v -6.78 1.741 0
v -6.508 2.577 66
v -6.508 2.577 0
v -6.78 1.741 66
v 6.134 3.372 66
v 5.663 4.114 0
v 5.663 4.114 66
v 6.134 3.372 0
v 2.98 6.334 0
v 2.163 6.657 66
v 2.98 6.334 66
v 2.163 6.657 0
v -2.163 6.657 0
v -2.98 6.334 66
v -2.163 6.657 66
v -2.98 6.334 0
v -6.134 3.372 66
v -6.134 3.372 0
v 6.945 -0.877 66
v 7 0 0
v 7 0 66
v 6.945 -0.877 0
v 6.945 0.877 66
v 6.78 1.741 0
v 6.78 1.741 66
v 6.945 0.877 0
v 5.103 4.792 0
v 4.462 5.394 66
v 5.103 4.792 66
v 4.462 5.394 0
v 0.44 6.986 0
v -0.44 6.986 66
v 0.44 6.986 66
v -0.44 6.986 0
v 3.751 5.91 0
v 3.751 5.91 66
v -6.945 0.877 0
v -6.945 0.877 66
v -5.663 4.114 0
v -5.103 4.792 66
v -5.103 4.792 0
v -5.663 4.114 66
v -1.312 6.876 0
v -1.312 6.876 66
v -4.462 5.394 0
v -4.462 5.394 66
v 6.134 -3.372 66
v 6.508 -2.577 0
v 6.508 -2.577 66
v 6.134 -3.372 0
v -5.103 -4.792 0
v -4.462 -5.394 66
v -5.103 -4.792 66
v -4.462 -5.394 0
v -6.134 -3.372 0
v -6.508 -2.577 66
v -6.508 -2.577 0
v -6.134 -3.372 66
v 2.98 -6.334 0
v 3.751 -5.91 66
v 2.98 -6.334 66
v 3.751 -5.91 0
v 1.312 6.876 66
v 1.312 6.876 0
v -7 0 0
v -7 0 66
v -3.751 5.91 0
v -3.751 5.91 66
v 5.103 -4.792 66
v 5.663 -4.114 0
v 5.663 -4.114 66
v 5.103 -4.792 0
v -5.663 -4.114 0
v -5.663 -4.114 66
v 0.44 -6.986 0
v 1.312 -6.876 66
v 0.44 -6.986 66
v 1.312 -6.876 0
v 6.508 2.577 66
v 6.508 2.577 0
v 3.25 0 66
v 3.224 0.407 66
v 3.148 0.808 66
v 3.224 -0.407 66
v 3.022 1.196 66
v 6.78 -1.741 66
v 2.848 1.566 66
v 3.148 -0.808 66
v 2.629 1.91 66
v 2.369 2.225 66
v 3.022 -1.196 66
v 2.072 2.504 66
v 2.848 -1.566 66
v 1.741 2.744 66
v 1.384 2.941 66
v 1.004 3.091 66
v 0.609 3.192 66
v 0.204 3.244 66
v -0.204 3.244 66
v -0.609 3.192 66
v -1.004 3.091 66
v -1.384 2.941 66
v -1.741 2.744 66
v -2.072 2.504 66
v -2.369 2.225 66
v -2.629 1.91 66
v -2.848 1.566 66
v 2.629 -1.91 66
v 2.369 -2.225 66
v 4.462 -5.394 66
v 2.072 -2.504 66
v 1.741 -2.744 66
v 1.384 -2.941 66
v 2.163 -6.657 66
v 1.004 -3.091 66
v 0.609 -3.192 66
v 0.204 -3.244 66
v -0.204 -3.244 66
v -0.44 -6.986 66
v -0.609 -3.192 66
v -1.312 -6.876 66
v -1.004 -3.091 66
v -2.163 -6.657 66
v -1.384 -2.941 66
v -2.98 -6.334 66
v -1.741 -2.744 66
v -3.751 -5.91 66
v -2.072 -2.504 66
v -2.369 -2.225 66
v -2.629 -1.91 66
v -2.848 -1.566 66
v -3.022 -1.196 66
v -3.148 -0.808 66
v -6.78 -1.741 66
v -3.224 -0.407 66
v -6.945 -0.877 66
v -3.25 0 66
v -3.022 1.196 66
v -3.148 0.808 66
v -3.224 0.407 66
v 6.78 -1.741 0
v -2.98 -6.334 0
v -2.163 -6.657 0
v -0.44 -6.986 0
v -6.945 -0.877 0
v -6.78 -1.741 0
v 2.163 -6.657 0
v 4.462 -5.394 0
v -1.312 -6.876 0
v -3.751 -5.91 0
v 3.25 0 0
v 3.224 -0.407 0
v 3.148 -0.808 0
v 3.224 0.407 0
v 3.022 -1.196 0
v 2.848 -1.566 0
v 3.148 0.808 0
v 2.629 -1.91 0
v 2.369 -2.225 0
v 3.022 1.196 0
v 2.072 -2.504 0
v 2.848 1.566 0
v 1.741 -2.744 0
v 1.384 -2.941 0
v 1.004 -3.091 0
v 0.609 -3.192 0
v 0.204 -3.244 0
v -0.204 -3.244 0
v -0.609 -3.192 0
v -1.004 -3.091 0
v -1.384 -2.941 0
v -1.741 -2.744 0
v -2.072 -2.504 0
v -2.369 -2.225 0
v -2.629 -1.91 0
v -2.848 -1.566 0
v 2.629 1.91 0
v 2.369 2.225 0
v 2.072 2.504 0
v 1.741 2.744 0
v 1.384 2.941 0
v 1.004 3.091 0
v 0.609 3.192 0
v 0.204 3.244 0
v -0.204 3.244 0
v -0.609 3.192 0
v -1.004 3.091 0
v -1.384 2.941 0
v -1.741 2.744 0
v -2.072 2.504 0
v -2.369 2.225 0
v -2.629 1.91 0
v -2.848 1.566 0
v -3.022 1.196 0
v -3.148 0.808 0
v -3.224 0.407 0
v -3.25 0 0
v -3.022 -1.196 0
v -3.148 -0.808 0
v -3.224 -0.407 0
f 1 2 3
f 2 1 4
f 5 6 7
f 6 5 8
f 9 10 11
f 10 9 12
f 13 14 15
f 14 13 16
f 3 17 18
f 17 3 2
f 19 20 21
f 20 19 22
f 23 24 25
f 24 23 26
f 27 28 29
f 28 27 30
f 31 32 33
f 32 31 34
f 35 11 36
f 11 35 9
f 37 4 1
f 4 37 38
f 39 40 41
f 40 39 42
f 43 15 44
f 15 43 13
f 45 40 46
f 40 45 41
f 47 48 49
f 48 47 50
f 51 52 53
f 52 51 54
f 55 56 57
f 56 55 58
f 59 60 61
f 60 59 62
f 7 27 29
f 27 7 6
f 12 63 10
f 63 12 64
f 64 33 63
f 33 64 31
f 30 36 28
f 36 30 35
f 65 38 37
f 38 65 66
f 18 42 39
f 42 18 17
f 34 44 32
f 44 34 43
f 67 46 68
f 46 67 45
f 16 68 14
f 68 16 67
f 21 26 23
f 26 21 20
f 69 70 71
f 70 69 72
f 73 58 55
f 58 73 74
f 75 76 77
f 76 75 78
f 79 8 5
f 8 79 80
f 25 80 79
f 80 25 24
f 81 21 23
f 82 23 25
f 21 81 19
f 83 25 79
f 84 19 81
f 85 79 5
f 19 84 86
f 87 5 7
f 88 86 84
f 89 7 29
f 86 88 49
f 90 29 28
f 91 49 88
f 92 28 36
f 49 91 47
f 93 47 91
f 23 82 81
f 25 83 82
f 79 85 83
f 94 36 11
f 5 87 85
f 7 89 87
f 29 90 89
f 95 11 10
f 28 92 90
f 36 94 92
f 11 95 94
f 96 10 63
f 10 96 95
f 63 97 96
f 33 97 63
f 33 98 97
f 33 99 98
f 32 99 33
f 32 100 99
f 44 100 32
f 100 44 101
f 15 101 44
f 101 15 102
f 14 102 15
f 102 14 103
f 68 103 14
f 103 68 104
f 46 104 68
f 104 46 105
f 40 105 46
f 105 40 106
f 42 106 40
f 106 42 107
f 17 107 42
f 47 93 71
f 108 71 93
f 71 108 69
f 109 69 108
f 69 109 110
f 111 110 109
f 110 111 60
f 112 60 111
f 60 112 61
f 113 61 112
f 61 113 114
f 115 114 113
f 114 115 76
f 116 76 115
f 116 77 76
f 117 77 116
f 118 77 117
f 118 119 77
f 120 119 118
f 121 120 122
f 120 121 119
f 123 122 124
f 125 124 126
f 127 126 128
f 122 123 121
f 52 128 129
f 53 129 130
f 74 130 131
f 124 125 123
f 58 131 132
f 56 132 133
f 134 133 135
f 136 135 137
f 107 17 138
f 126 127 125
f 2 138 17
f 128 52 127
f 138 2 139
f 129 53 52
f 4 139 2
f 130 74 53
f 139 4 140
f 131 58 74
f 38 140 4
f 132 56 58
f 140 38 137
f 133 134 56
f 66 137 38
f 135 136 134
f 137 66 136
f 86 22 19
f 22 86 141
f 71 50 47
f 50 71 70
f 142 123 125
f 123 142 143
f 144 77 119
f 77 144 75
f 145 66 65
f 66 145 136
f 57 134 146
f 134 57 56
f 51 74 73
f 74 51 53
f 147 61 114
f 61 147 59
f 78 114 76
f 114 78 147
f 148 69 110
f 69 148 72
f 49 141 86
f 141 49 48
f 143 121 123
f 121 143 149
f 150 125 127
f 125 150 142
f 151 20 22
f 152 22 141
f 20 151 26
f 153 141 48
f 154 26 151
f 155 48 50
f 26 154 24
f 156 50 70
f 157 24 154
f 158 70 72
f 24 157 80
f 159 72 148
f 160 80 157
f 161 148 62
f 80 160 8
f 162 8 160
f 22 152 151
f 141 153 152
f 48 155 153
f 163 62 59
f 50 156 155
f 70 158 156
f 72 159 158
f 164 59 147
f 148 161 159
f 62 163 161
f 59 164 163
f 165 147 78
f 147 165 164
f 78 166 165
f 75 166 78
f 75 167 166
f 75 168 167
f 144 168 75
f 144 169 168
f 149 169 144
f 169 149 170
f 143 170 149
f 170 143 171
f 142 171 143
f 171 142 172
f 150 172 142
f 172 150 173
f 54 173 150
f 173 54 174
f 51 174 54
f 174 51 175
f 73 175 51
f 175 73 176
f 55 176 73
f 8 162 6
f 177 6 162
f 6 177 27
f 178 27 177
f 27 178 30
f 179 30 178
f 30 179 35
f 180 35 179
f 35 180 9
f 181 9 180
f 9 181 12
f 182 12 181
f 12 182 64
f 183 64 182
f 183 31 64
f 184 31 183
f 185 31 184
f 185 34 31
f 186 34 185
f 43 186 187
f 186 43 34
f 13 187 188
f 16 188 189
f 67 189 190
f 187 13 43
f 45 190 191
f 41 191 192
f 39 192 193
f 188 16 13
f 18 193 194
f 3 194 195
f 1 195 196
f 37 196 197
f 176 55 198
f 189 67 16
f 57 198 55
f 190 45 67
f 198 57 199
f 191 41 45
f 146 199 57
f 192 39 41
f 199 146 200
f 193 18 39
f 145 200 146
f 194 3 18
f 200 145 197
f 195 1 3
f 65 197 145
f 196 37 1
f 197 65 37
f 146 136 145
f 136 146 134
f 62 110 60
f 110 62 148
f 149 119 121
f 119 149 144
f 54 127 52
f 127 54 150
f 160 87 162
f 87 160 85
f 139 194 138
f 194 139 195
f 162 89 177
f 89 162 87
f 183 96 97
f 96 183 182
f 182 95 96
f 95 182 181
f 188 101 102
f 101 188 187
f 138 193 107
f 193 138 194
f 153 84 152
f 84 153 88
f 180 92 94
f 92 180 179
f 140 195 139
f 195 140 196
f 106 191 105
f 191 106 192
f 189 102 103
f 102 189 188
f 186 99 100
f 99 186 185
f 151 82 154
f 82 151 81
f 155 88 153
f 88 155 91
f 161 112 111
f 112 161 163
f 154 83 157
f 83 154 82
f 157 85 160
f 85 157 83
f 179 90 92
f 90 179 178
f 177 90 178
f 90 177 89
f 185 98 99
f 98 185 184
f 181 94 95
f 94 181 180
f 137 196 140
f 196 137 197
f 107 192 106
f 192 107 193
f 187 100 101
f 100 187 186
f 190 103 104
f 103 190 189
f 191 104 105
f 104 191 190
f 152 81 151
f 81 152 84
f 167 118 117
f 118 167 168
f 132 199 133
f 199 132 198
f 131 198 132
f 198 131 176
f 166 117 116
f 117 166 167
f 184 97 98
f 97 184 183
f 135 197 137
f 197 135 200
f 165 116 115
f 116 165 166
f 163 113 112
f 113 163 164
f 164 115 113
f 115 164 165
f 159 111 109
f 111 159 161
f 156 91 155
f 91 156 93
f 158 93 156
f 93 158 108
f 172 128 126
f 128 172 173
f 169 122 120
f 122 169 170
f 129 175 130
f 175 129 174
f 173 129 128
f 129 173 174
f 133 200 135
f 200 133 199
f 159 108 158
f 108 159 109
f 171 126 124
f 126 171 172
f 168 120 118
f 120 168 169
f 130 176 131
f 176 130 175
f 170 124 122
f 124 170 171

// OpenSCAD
$fn = 50;


difference() {
	union() {
		cylinder(h = 66, r = 7.0000000000);
	}
	union() {
		translate(v = [0.0000000000, 0.0000000000, -100.0000000000]) {
			cylinder(h = 200, r = 3.2500000000);
		}
	}
}
